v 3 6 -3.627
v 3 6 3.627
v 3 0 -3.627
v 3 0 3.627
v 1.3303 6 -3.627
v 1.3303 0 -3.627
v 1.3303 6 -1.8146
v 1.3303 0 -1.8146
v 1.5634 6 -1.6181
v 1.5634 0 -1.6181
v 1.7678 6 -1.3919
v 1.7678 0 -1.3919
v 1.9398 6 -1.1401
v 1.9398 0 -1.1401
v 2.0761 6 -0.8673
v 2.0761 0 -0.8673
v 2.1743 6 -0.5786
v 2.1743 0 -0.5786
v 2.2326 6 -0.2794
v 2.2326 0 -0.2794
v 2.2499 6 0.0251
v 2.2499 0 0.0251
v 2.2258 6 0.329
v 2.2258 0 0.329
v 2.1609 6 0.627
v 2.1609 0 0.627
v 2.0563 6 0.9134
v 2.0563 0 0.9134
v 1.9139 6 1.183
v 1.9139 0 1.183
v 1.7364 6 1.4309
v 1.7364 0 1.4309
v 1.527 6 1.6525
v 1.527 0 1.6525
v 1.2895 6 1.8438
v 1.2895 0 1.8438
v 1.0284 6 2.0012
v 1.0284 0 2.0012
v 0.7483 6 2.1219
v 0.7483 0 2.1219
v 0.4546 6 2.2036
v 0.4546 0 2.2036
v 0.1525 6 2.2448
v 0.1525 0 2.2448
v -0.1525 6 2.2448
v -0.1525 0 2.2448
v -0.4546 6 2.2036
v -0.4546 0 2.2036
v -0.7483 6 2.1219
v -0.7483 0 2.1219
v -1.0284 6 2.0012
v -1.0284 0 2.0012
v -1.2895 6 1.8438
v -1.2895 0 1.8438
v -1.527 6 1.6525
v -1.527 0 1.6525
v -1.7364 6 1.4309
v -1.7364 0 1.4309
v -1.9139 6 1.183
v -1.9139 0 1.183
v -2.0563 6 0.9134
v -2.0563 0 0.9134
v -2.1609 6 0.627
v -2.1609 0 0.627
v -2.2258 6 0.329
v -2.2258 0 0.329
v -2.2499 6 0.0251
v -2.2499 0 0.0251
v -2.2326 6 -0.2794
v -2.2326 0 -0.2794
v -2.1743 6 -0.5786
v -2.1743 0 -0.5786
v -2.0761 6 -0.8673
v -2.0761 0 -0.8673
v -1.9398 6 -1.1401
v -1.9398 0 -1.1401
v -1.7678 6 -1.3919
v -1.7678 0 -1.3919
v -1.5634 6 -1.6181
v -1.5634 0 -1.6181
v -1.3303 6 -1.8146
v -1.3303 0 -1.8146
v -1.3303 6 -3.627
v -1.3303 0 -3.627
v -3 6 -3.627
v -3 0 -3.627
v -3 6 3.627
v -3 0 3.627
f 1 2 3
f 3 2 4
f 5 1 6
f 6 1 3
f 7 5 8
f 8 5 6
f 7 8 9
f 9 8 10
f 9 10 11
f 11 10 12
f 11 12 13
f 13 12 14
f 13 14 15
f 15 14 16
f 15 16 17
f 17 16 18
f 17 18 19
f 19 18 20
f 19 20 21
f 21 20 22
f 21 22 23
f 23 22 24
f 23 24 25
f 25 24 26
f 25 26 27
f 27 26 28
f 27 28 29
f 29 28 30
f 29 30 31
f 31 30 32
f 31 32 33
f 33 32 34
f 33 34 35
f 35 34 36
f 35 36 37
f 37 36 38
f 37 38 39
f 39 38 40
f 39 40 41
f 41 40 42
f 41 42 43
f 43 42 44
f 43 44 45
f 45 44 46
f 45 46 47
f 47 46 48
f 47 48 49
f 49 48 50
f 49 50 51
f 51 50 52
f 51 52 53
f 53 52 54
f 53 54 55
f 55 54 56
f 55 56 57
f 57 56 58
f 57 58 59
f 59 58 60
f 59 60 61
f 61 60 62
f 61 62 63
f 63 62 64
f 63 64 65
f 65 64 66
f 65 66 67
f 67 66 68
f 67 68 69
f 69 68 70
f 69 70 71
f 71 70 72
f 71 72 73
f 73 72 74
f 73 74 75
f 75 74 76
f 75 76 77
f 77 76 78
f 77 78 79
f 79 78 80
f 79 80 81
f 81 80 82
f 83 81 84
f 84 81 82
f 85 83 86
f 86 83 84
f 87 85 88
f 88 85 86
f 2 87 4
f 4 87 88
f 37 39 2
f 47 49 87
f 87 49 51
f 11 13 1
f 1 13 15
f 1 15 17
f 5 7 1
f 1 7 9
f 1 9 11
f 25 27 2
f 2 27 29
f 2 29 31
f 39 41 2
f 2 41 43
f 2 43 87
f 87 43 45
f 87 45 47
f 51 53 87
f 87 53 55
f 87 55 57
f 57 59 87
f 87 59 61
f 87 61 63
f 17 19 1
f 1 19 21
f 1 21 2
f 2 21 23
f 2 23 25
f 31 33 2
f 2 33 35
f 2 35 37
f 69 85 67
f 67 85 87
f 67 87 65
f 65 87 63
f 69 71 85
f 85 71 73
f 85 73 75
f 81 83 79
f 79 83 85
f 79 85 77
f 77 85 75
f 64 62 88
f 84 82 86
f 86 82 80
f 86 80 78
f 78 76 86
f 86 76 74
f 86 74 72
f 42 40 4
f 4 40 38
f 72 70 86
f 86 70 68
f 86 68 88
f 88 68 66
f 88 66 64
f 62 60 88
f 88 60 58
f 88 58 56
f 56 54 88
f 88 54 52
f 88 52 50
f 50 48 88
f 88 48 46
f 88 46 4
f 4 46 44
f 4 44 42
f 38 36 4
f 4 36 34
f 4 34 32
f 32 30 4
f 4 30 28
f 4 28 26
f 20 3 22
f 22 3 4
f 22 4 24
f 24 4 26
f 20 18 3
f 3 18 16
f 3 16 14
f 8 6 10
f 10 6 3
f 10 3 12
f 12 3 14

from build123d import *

# Parameters (mm, degrees)
EXTRUDE_1_DEPTH = 6


with BuildPart() as part:
    # Эскиз1 → Бобышка-Вытянуть1 (new body)
    with BuildSketch(Plane(origin=(0, 0, 0), x_dir=(1, 0, 0), z_dir=(0, 1, 0))):
        with BuildLine():
            Line((-3, 3.627046628), (-1.330273321, 3.627046628))
            Line((-1.330273321, 3.627046628), (-1.330273321, 1.81462748))
            ThreePointArc((-1.330273321, 1.81462748), (0, -2.25), (1.330273321, 1.81462748))
            Line((1.330273321, 1.81462748), (1.330273321, 3.627046628))
            Line((1.330273321, 3.627046628), (3, 3.627046628))
            Line((3, 3.627046628), (3, -3.627046628))
            Line((3, -3.627046628), (-3, -3.627046628))
            Line((-3, -3.627046628), (-3, 3.627046628))
        make_face()
    extrude(amount=EXTRUDE_1_DEPTH)


solid = part.part
